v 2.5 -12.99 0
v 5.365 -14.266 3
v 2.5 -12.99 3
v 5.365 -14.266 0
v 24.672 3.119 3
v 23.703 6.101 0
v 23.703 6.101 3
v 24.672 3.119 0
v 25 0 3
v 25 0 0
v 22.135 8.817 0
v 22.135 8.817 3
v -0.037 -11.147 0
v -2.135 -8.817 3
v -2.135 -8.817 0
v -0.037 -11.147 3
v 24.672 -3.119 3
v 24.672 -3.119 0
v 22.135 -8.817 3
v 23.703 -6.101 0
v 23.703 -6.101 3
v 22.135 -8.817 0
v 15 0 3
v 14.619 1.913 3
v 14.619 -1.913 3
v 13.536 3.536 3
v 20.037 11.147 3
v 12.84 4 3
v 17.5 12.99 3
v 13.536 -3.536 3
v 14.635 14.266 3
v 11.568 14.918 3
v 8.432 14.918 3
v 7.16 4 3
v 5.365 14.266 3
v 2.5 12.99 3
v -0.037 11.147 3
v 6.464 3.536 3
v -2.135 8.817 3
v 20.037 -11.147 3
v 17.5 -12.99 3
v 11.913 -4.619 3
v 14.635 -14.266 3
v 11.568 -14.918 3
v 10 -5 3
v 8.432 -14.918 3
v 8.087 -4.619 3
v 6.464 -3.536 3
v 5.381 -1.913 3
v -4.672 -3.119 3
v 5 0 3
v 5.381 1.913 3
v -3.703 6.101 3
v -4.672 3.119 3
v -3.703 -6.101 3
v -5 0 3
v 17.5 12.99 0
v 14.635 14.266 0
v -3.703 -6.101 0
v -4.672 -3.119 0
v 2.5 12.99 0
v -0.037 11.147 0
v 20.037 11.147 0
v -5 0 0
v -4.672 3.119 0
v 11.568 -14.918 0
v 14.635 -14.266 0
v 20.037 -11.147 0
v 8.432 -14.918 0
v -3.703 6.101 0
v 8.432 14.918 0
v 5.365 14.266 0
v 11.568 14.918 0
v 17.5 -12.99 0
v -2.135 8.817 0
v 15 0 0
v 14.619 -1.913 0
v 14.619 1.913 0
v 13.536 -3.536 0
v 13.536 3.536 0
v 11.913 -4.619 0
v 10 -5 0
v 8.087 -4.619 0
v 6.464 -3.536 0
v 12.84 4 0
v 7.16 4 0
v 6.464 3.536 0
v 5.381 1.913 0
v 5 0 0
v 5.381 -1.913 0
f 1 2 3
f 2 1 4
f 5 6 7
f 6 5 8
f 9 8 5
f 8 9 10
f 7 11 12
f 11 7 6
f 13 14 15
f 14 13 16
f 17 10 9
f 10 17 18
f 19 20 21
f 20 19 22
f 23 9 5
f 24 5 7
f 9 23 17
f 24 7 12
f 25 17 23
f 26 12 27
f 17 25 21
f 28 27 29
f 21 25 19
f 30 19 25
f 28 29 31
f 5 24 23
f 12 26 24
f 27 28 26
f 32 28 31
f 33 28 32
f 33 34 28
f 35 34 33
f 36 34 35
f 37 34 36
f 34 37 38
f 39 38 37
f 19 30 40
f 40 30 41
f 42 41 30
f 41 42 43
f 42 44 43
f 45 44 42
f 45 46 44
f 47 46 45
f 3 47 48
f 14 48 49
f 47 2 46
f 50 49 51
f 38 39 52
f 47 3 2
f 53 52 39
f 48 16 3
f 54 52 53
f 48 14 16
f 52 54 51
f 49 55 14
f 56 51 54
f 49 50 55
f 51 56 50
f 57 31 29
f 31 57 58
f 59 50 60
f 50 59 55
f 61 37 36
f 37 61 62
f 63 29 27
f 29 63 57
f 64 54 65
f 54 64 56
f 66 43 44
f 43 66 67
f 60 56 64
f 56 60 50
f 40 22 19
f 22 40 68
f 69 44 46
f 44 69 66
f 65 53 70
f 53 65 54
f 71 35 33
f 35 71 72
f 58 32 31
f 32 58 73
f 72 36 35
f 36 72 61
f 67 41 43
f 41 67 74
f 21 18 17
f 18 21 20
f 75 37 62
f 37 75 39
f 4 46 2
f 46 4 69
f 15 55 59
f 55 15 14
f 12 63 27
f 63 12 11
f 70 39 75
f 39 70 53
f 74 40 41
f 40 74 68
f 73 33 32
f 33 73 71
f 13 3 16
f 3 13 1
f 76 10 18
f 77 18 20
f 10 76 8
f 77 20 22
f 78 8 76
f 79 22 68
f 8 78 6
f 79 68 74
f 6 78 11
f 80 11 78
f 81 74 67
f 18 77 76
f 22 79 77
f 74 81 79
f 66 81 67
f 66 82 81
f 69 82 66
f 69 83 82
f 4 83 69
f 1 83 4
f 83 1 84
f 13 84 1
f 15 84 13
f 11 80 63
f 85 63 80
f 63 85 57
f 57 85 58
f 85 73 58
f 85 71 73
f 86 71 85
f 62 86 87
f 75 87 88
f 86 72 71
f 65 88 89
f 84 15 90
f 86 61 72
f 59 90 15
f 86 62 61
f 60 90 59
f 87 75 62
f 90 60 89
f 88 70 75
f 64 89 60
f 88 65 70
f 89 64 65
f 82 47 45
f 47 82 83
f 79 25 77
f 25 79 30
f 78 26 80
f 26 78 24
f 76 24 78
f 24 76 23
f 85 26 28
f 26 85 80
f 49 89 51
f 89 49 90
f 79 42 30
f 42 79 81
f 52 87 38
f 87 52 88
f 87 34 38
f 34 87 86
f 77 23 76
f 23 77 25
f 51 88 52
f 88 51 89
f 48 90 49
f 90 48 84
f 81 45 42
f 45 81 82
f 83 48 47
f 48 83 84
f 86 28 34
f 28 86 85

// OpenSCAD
difference(){
translate([10, 0, 0])
cylinder(3, 15, 15);


translate([10, 0, 0])
    cylinder(3, 5, 5);


}

translate([0, 4, 0])
cube([15, 7, 3]);
